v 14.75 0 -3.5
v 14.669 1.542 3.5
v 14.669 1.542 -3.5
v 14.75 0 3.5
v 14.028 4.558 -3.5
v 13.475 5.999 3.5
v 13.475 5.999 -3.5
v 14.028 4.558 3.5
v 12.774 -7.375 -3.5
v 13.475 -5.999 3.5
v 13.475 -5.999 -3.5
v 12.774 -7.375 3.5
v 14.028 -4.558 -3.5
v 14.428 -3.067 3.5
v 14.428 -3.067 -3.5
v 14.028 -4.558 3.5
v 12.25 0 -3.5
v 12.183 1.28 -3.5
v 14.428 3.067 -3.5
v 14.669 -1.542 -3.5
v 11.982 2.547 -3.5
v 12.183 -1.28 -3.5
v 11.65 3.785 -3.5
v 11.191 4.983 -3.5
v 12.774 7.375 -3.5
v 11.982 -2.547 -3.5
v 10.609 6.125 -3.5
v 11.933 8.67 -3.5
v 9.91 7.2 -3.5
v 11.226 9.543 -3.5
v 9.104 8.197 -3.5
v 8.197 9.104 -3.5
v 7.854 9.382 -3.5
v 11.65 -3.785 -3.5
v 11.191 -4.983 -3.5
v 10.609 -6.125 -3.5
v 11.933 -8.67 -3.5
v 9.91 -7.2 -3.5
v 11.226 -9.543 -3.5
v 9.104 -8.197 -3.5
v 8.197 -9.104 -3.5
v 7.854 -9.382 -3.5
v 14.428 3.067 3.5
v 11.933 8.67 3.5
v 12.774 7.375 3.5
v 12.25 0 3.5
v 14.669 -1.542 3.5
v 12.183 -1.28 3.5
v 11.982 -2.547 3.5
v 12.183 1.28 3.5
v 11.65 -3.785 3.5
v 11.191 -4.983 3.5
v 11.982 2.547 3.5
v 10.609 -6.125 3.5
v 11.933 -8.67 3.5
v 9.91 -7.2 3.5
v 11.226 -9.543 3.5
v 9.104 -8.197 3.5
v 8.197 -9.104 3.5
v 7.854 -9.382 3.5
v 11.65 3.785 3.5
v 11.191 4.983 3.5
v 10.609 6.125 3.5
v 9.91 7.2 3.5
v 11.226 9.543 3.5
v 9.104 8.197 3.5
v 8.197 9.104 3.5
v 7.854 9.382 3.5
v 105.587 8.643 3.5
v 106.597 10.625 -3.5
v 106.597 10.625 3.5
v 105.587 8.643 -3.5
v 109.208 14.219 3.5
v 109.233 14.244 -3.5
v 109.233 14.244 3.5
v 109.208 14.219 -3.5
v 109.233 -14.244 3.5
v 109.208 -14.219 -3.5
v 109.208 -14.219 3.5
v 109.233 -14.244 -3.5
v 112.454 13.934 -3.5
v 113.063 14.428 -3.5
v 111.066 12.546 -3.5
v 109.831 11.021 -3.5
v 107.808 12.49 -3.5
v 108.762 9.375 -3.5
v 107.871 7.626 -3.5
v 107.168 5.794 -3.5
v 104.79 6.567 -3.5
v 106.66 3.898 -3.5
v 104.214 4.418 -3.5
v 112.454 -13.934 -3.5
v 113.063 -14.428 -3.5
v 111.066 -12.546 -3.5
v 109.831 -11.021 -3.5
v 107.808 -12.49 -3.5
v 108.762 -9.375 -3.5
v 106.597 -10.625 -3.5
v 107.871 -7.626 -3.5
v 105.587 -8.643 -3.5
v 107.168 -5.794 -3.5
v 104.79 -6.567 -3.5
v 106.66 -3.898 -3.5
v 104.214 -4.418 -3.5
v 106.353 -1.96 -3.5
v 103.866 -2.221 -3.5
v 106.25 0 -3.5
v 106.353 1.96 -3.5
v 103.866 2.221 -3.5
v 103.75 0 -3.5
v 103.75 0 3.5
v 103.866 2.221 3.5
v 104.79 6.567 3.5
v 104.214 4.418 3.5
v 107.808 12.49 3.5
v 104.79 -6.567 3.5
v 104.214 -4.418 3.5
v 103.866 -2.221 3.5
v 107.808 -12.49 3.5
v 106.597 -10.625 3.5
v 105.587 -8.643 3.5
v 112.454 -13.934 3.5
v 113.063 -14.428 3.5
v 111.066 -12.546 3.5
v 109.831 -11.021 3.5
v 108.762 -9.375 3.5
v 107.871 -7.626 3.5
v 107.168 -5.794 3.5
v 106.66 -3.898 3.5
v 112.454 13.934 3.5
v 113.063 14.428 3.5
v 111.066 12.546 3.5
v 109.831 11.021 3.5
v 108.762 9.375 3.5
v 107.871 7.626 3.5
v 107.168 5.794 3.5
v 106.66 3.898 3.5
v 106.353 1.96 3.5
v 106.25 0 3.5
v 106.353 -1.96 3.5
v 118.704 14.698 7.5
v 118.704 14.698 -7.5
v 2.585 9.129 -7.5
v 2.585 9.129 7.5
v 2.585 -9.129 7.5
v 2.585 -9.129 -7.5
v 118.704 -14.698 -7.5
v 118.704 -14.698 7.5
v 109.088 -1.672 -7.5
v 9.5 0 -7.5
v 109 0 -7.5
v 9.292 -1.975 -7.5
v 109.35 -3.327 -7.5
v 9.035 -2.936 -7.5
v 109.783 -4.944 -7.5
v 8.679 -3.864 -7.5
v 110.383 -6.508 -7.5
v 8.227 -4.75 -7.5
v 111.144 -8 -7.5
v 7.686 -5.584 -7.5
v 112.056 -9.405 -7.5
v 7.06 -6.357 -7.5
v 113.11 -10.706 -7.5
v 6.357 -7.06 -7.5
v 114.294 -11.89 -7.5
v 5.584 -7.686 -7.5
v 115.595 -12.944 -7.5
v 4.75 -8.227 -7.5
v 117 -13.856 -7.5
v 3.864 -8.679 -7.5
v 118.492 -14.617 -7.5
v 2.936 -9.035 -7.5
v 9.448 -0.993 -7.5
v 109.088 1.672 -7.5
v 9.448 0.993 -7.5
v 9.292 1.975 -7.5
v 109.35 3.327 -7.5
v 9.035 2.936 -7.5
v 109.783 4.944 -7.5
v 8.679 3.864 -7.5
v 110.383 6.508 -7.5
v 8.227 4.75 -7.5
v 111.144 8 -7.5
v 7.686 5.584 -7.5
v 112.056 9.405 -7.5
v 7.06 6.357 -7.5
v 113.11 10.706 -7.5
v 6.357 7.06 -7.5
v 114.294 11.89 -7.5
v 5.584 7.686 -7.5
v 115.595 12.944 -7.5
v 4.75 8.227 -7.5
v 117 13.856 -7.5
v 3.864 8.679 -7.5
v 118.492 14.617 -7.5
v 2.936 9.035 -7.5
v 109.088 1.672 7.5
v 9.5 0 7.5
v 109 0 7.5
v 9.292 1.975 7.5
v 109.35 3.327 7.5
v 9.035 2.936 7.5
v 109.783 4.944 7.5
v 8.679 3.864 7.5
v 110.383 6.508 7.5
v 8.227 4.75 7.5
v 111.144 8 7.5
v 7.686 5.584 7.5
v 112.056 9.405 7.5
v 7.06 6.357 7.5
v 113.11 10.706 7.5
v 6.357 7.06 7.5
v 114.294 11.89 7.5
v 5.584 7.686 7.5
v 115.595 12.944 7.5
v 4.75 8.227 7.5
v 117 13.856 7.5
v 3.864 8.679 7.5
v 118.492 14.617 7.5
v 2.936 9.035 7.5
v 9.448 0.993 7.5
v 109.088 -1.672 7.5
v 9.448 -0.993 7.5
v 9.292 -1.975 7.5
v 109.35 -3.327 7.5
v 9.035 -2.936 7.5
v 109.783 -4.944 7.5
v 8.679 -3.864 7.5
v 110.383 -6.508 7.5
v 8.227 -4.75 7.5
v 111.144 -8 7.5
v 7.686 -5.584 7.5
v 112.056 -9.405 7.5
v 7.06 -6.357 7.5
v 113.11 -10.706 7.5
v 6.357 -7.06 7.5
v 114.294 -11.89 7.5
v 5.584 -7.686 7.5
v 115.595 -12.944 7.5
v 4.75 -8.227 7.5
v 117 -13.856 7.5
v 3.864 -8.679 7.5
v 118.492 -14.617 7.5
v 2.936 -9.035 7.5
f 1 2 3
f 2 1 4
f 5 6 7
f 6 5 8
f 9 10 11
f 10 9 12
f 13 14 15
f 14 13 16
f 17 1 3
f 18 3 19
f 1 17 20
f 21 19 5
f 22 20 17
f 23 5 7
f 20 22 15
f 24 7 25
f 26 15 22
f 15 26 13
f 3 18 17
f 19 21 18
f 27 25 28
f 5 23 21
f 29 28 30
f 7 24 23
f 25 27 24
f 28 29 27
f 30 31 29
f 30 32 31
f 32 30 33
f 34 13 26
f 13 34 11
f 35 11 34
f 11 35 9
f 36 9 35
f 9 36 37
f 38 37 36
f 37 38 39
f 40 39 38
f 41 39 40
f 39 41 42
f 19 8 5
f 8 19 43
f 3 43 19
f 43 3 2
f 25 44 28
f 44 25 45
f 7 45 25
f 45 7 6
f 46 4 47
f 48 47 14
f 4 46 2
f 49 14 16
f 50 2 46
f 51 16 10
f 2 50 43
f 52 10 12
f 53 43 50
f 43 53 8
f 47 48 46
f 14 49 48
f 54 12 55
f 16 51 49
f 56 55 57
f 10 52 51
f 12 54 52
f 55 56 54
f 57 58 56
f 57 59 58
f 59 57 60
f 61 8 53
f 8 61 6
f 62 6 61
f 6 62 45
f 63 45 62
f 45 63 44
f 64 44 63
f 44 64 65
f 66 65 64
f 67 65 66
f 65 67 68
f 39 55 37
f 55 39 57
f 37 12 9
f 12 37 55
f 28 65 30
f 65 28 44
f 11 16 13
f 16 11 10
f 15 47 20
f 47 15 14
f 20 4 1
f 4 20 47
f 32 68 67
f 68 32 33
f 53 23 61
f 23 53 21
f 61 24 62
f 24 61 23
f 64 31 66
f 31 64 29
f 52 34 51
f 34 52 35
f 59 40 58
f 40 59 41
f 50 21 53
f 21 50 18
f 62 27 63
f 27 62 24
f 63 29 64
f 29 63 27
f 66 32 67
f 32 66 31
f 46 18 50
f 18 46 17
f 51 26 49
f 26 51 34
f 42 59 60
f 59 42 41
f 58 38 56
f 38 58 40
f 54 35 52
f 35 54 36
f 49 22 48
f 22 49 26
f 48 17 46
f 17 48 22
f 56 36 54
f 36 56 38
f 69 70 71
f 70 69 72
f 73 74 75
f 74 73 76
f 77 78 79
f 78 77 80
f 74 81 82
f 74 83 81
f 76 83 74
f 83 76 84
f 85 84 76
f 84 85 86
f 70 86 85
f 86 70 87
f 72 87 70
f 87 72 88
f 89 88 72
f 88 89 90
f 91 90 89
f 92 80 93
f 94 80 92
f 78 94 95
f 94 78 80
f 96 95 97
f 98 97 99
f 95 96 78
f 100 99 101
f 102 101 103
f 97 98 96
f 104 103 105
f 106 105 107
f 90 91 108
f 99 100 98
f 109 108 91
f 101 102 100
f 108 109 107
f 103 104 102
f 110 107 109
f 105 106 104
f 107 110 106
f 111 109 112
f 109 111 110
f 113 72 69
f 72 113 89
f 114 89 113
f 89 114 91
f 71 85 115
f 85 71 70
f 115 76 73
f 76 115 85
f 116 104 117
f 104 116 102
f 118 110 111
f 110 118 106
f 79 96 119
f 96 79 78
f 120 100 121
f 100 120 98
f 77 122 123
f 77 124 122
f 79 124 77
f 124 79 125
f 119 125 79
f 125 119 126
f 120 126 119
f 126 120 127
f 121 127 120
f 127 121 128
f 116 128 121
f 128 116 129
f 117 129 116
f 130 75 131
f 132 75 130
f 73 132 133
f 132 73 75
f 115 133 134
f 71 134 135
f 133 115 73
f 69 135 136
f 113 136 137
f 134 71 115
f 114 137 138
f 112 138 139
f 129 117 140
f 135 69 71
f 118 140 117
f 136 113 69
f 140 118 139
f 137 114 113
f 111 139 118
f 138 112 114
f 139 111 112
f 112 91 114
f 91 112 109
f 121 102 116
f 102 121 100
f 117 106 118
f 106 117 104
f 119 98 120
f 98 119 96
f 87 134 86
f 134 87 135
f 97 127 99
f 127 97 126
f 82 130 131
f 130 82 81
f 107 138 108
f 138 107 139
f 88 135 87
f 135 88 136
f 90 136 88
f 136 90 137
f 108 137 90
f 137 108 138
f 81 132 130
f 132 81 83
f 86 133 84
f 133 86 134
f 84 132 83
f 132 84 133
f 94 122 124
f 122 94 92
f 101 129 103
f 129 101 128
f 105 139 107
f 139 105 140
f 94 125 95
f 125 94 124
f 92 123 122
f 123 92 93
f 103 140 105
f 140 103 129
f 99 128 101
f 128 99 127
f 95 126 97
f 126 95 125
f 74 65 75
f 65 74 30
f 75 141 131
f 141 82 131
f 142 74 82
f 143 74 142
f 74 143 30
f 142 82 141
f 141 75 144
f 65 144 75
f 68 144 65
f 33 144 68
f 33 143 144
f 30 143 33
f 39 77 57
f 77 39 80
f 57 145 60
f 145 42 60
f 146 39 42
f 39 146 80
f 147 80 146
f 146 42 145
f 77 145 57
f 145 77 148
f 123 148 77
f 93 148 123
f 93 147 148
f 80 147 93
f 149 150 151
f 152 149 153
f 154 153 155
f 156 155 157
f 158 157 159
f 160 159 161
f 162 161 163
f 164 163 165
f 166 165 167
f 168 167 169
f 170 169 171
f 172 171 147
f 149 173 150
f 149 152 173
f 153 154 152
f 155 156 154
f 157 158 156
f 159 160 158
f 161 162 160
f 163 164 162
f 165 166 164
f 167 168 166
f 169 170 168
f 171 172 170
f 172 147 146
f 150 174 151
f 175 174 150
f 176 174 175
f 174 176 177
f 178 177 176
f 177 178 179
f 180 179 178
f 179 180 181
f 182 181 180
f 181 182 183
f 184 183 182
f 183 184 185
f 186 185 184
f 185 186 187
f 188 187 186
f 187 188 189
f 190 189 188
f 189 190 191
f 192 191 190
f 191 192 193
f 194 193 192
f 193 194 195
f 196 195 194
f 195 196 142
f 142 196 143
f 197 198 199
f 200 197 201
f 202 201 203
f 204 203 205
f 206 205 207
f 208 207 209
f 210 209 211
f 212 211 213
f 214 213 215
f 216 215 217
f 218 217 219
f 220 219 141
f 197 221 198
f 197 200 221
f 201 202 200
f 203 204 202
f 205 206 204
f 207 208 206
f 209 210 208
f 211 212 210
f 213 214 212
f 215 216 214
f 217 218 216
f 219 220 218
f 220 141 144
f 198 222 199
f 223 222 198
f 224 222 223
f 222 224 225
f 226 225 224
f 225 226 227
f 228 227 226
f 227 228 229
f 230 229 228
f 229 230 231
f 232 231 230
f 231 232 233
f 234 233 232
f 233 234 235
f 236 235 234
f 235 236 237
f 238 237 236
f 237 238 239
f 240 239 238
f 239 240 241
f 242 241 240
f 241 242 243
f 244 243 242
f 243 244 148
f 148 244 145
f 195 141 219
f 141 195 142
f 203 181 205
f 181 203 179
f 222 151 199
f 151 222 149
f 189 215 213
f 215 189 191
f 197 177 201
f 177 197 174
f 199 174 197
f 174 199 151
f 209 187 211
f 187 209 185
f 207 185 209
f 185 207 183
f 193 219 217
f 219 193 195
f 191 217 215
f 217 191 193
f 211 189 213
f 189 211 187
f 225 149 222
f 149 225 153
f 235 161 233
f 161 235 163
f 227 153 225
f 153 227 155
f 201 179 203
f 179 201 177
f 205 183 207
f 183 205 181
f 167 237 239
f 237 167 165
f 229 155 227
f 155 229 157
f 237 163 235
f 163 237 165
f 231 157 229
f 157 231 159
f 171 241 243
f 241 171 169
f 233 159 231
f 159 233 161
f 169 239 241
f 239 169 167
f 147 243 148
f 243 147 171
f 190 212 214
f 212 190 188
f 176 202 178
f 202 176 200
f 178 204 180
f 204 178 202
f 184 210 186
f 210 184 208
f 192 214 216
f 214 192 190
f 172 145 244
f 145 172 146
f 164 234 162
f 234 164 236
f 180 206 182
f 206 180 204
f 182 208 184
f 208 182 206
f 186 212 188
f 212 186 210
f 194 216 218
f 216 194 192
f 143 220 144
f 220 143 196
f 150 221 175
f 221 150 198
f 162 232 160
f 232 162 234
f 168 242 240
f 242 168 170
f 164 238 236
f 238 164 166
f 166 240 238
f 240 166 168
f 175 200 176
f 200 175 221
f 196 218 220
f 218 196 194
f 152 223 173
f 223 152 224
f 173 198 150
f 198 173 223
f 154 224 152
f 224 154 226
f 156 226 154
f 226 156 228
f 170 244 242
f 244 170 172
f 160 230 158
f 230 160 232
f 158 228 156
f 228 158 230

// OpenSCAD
$fs = 1;
$fa = 6;

module zip(d) {
  difference() {
    cylinder(d=d+2.5, h=7, center=true);
    cylinder(d=d-2.5, h=100, center=true);
  }
}

difference() {
  hull() {
    translate([125,0,0]) cylinder(d=30, h=15, center=true);
    cylinder(d=18, h=15, center=true);
  }
  translate([125,0,0]) cylinder(d=32, h=100, center=true);
  cylinder(d=19, h=100, center=true);

  zip(27);
  translate([125,0,0]) zip(40);
}
